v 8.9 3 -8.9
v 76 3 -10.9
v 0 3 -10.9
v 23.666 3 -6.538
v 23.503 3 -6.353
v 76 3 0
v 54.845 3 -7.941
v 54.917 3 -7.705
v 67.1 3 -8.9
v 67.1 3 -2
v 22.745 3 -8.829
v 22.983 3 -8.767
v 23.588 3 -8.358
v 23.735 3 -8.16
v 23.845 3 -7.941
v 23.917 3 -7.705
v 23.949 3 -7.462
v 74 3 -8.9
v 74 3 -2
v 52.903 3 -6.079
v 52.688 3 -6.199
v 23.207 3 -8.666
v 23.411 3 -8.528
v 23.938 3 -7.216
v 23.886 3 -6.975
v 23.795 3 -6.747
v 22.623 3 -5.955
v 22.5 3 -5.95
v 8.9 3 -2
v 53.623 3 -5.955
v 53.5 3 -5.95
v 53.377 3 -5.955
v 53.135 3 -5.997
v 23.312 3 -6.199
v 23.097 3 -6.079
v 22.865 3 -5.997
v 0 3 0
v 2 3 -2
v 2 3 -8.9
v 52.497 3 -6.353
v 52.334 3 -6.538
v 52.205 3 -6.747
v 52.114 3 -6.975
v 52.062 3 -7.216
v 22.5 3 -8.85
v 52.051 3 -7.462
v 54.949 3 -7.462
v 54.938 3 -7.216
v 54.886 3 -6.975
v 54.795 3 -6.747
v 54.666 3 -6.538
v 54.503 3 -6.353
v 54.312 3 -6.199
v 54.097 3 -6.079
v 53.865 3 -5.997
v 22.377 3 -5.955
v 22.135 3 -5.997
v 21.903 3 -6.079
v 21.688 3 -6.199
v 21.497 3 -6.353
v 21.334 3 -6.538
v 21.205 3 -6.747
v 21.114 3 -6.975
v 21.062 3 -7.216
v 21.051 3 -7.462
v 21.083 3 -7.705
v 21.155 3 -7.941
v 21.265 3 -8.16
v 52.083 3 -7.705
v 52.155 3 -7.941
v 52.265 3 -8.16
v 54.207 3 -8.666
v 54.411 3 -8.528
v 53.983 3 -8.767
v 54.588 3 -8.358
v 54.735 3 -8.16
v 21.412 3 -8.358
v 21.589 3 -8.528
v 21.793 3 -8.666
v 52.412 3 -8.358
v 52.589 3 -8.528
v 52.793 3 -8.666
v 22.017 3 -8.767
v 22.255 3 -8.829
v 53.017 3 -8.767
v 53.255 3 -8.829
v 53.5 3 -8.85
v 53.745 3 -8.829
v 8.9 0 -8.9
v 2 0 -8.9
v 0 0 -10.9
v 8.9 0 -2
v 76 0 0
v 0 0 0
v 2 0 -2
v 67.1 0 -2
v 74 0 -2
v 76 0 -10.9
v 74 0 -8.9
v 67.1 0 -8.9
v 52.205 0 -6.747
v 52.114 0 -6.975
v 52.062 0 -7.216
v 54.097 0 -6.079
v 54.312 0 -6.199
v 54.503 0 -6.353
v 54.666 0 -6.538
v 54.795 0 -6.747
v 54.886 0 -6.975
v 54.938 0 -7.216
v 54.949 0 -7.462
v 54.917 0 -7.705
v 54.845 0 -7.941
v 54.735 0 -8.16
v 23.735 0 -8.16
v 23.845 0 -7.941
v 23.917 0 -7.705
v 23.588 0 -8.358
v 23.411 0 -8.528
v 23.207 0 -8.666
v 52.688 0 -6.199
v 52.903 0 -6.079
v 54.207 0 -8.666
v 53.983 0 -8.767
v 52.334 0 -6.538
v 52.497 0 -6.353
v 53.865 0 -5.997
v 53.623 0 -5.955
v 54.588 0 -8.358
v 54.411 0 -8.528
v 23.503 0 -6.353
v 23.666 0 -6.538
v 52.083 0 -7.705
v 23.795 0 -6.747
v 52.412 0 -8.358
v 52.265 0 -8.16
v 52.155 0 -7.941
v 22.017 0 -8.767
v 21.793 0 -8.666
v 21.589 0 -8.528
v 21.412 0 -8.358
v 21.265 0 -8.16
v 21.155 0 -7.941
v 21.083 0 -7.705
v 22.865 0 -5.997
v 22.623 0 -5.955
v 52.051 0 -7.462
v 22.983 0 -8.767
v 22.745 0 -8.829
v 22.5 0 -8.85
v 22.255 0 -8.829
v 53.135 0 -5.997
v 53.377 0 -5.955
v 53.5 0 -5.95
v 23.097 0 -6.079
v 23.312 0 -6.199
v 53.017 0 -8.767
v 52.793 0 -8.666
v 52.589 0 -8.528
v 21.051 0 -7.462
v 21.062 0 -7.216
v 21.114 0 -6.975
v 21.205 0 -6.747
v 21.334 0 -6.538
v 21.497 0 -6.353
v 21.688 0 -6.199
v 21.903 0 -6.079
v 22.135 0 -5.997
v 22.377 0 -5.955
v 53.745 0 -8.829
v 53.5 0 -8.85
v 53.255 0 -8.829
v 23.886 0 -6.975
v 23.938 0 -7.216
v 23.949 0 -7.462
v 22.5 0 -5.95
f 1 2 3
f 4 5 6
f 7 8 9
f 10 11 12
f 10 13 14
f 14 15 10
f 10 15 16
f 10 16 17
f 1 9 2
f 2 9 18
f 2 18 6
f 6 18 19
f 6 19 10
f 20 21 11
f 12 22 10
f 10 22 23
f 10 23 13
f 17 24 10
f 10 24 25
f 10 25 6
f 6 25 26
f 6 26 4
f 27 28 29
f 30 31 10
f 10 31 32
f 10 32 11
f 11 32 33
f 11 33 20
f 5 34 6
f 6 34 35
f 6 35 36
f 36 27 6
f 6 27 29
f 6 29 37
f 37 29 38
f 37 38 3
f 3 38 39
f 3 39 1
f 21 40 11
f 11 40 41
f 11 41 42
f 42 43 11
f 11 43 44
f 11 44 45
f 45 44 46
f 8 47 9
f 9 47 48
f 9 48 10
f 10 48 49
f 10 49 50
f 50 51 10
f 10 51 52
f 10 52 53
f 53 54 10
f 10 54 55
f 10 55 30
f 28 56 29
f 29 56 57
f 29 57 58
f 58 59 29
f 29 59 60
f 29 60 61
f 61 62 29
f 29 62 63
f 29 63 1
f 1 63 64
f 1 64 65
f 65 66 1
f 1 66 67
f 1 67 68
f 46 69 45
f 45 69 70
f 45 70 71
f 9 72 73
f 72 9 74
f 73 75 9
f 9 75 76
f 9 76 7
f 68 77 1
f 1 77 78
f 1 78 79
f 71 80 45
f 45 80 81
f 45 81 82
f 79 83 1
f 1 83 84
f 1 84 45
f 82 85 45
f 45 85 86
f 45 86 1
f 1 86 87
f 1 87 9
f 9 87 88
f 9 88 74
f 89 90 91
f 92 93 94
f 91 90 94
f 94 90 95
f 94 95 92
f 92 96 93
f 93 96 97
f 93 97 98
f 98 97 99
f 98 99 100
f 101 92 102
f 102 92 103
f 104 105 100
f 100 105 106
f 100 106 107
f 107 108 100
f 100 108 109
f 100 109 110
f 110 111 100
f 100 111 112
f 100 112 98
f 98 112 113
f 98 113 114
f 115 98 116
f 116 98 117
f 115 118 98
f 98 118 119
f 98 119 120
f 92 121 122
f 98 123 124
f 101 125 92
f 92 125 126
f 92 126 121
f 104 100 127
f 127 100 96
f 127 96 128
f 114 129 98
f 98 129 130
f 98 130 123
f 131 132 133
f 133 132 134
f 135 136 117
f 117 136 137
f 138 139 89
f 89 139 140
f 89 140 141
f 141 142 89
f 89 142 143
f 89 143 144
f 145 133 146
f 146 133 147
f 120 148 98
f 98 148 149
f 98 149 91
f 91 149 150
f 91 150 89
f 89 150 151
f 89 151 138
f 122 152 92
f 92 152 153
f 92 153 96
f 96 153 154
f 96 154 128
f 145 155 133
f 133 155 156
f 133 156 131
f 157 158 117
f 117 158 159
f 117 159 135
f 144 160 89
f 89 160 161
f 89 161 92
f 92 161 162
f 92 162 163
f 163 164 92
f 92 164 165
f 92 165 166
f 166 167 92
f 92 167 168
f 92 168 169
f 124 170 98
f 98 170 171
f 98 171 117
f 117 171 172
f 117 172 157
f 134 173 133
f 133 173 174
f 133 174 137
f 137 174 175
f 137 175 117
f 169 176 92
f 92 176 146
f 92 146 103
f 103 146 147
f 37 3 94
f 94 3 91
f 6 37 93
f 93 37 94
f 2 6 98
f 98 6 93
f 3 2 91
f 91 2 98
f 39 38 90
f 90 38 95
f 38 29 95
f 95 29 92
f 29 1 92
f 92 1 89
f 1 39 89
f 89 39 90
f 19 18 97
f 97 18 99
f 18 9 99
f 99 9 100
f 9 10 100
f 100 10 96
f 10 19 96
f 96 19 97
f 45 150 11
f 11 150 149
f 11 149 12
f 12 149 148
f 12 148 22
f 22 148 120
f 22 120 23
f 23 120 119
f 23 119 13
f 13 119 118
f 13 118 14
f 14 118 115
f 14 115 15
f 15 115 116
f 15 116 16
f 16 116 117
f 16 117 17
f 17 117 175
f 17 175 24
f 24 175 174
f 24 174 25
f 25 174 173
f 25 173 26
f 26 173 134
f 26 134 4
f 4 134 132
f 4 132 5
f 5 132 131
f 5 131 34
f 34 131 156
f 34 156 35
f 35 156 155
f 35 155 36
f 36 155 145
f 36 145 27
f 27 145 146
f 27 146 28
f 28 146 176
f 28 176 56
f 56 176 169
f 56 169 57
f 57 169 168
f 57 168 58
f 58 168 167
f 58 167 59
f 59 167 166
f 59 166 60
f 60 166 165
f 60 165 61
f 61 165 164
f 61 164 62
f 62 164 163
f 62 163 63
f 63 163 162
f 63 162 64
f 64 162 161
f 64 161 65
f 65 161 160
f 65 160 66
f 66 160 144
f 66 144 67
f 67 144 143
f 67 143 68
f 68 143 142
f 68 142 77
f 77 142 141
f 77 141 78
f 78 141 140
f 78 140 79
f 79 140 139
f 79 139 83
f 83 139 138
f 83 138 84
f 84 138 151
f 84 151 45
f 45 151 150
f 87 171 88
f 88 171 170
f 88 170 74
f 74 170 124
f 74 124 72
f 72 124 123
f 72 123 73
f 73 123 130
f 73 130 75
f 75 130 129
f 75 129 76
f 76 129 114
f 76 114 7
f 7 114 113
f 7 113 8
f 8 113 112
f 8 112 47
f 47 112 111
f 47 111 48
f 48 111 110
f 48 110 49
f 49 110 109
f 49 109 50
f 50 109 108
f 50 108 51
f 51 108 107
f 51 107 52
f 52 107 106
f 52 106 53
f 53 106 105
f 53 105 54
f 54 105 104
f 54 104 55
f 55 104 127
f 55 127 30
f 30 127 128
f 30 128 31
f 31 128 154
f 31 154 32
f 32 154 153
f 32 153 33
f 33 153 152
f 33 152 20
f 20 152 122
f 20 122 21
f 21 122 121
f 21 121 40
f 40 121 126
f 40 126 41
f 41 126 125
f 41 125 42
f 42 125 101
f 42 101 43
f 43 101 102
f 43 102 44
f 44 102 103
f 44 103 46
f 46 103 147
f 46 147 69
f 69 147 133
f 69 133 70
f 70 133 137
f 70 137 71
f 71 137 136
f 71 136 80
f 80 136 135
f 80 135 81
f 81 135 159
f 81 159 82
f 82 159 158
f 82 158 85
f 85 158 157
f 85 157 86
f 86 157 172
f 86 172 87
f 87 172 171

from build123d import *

# Parameters (mm, degrees)
ESQUISSE1_W        = 76
ESQUISSE1_H        = 10.9
ESQUISSE1_R        = 1.45
ESQUISSE1_W_2      = 6.9
ESQUISSE1_H_2      = 6.9
BOSS_EXTRU_1_DEPTH = 3


with BuildPart() as part:
    # Esquisse1 → Boss.-Extru.1 (new body)
    with BuildSketch(Plane(origin=(0, 0, 0), x_dir=(1, 0, 0), z_dir=(0, 1, 0))):
        with Locations((38, 5.45)):
            Rectangle(ESQUISSE1_W, ESQUISSE1_H)
        with Locations(Location((22.5, 7.4, 0), (0, 0, 270))):
            Circle(ESQUISSE1_R, mode=Mode.SUBTRACT)
        with Locations(Location((53.5, 7.4, 0), (0, 0, 270))):
            Circle(ESQUISSE1_R, mode=Mode.SUBTRACT)
        with Locations((5.45, 5.45)):
            Rectangle(ESQUISSE1_W_2, ESQUISSE1_H_2, mode=Mode.SUBTRACT)
        with Locations((70.55, 5.45)):
            Rectangle(ESQUISSE1_W_2, ESQUISSE1_H_2, mode=Mode.SUBTRACT)
    extrude(amount=BOSS_EXTRU_1_DEPTH)


solid = part.part
